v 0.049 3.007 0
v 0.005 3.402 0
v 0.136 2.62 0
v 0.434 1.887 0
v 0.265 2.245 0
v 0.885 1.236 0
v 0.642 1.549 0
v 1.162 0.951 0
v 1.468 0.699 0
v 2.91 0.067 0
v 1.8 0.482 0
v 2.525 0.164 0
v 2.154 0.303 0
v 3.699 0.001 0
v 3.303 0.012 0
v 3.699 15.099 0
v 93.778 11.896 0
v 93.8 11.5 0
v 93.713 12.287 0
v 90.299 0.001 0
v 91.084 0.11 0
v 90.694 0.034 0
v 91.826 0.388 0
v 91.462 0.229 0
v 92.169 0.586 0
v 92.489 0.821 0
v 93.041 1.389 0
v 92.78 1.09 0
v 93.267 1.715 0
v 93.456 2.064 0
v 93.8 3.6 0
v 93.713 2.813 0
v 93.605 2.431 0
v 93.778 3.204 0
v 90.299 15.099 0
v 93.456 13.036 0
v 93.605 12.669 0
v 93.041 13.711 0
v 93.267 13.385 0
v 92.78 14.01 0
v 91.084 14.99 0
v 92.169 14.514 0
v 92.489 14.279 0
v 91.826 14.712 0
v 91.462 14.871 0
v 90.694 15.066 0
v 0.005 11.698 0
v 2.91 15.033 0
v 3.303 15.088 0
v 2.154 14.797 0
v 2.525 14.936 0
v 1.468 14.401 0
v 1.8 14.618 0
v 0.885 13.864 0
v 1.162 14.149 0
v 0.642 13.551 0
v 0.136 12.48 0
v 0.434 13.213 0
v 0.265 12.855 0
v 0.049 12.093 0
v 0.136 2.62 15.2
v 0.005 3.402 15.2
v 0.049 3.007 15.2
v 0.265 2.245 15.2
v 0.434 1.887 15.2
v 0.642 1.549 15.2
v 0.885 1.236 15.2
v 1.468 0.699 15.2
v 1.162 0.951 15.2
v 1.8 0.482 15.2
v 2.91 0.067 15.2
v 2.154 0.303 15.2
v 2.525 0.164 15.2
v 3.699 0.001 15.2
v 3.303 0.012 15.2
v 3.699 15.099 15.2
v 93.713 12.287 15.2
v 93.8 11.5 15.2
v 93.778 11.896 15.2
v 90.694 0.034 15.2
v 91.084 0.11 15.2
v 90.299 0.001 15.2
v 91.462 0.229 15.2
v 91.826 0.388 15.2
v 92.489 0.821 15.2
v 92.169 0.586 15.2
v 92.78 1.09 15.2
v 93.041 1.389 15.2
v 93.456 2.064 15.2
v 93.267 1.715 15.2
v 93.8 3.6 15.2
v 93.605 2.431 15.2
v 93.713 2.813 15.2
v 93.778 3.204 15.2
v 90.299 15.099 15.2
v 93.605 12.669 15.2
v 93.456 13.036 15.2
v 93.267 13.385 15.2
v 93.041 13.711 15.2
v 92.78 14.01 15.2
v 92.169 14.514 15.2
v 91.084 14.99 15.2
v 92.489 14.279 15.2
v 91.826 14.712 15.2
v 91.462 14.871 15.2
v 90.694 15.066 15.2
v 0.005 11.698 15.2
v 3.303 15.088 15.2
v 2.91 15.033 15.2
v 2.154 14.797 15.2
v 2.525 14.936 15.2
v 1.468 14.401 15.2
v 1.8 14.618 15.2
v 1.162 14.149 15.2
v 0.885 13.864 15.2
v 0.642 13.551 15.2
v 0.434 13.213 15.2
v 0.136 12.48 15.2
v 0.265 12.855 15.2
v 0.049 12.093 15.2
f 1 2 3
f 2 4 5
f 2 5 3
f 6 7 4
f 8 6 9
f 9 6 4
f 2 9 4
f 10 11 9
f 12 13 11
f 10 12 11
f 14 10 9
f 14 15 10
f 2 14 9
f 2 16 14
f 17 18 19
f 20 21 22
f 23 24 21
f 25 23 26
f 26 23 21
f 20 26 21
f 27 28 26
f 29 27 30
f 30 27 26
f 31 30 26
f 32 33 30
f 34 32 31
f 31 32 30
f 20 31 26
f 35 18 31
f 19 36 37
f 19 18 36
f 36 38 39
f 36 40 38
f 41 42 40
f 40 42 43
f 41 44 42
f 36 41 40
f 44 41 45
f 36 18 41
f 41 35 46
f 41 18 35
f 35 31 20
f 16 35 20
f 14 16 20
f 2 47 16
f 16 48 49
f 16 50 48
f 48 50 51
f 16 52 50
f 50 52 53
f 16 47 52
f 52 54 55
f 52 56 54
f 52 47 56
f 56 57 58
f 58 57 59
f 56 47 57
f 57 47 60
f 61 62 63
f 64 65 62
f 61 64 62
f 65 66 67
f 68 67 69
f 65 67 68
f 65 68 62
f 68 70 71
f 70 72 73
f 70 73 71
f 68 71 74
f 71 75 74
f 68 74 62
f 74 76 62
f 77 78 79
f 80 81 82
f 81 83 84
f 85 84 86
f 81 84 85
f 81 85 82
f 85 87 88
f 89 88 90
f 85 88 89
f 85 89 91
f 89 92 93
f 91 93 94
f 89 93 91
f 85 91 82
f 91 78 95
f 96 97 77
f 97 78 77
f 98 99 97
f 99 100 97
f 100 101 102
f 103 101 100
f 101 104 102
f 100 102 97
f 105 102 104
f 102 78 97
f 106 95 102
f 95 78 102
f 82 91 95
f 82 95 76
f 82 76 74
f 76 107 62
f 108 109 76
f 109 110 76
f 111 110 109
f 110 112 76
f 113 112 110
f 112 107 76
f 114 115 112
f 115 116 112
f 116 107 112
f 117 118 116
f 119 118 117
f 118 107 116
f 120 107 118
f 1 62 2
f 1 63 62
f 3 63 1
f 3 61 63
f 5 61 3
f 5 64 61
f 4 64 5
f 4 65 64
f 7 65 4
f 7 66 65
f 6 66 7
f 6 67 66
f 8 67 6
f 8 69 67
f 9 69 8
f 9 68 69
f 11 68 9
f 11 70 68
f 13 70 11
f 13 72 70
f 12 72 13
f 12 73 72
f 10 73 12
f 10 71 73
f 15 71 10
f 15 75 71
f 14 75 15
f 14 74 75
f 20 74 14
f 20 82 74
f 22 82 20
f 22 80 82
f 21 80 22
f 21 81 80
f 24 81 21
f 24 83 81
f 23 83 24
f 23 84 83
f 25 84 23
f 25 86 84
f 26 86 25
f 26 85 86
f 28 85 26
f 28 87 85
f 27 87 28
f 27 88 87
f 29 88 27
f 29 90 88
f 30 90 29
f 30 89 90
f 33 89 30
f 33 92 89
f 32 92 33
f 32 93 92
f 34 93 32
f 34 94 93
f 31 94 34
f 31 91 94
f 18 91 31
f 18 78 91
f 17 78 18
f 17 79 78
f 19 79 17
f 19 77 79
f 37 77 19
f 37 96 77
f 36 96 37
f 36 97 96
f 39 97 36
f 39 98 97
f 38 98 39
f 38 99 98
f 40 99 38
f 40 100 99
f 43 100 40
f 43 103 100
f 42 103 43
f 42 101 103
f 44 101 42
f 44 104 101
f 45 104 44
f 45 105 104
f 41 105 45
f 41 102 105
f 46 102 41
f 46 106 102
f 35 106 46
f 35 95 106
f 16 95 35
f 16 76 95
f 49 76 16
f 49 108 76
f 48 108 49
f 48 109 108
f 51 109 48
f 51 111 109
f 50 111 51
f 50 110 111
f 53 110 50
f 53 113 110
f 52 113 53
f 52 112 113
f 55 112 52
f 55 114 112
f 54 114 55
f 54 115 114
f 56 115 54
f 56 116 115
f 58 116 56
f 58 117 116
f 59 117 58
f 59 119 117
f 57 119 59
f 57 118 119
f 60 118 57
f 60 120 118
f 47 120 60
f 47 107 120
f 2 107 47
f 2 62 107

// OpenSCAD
module SmoothXYCube(size, smooth_rad) {
    $fa = ($fa >= 12) ? 1 : $fa;
    $fs = ($fs >= 2) ? 0.4 : $fs;

    size = is_num(size) ? [size, size, size] : size;

    scalex = (smooth_rad < size[0]/2) ? 1 : size[0]/(2*smooth_rad);
    scaley = (smooth_rad < size[1]/2) ? 1 : size[1]/(2*smooth_rad);
    smoothx = smooth_rad * scalex;
    smoothy = smooth_rad * scaley;

    linear_extrude(size[2]) hull() {
        translate([smoothx, smoothy])
        scale([scalex, scaley])
        circle(r=smooth_rad);
        translate([size[0]-smoothx, smoothy])
        scale([scalex, scaley])
        circle(r=smooth_rad);
        translate([smoothx, size[1]-smoothy])
        scale([scalex, scaley])
        circle(r=smooth_rad);
        translate([size[0]-smoothx, size[1]-smoothy])
        scale([scalex, scaley])
        circle(r=smooth_rad);
    }
}

depth = 15.2;
length = 93.8;
width = 15.1;

SmoothXYCube([
    length,
    width,
    depth,
], 3.6);
